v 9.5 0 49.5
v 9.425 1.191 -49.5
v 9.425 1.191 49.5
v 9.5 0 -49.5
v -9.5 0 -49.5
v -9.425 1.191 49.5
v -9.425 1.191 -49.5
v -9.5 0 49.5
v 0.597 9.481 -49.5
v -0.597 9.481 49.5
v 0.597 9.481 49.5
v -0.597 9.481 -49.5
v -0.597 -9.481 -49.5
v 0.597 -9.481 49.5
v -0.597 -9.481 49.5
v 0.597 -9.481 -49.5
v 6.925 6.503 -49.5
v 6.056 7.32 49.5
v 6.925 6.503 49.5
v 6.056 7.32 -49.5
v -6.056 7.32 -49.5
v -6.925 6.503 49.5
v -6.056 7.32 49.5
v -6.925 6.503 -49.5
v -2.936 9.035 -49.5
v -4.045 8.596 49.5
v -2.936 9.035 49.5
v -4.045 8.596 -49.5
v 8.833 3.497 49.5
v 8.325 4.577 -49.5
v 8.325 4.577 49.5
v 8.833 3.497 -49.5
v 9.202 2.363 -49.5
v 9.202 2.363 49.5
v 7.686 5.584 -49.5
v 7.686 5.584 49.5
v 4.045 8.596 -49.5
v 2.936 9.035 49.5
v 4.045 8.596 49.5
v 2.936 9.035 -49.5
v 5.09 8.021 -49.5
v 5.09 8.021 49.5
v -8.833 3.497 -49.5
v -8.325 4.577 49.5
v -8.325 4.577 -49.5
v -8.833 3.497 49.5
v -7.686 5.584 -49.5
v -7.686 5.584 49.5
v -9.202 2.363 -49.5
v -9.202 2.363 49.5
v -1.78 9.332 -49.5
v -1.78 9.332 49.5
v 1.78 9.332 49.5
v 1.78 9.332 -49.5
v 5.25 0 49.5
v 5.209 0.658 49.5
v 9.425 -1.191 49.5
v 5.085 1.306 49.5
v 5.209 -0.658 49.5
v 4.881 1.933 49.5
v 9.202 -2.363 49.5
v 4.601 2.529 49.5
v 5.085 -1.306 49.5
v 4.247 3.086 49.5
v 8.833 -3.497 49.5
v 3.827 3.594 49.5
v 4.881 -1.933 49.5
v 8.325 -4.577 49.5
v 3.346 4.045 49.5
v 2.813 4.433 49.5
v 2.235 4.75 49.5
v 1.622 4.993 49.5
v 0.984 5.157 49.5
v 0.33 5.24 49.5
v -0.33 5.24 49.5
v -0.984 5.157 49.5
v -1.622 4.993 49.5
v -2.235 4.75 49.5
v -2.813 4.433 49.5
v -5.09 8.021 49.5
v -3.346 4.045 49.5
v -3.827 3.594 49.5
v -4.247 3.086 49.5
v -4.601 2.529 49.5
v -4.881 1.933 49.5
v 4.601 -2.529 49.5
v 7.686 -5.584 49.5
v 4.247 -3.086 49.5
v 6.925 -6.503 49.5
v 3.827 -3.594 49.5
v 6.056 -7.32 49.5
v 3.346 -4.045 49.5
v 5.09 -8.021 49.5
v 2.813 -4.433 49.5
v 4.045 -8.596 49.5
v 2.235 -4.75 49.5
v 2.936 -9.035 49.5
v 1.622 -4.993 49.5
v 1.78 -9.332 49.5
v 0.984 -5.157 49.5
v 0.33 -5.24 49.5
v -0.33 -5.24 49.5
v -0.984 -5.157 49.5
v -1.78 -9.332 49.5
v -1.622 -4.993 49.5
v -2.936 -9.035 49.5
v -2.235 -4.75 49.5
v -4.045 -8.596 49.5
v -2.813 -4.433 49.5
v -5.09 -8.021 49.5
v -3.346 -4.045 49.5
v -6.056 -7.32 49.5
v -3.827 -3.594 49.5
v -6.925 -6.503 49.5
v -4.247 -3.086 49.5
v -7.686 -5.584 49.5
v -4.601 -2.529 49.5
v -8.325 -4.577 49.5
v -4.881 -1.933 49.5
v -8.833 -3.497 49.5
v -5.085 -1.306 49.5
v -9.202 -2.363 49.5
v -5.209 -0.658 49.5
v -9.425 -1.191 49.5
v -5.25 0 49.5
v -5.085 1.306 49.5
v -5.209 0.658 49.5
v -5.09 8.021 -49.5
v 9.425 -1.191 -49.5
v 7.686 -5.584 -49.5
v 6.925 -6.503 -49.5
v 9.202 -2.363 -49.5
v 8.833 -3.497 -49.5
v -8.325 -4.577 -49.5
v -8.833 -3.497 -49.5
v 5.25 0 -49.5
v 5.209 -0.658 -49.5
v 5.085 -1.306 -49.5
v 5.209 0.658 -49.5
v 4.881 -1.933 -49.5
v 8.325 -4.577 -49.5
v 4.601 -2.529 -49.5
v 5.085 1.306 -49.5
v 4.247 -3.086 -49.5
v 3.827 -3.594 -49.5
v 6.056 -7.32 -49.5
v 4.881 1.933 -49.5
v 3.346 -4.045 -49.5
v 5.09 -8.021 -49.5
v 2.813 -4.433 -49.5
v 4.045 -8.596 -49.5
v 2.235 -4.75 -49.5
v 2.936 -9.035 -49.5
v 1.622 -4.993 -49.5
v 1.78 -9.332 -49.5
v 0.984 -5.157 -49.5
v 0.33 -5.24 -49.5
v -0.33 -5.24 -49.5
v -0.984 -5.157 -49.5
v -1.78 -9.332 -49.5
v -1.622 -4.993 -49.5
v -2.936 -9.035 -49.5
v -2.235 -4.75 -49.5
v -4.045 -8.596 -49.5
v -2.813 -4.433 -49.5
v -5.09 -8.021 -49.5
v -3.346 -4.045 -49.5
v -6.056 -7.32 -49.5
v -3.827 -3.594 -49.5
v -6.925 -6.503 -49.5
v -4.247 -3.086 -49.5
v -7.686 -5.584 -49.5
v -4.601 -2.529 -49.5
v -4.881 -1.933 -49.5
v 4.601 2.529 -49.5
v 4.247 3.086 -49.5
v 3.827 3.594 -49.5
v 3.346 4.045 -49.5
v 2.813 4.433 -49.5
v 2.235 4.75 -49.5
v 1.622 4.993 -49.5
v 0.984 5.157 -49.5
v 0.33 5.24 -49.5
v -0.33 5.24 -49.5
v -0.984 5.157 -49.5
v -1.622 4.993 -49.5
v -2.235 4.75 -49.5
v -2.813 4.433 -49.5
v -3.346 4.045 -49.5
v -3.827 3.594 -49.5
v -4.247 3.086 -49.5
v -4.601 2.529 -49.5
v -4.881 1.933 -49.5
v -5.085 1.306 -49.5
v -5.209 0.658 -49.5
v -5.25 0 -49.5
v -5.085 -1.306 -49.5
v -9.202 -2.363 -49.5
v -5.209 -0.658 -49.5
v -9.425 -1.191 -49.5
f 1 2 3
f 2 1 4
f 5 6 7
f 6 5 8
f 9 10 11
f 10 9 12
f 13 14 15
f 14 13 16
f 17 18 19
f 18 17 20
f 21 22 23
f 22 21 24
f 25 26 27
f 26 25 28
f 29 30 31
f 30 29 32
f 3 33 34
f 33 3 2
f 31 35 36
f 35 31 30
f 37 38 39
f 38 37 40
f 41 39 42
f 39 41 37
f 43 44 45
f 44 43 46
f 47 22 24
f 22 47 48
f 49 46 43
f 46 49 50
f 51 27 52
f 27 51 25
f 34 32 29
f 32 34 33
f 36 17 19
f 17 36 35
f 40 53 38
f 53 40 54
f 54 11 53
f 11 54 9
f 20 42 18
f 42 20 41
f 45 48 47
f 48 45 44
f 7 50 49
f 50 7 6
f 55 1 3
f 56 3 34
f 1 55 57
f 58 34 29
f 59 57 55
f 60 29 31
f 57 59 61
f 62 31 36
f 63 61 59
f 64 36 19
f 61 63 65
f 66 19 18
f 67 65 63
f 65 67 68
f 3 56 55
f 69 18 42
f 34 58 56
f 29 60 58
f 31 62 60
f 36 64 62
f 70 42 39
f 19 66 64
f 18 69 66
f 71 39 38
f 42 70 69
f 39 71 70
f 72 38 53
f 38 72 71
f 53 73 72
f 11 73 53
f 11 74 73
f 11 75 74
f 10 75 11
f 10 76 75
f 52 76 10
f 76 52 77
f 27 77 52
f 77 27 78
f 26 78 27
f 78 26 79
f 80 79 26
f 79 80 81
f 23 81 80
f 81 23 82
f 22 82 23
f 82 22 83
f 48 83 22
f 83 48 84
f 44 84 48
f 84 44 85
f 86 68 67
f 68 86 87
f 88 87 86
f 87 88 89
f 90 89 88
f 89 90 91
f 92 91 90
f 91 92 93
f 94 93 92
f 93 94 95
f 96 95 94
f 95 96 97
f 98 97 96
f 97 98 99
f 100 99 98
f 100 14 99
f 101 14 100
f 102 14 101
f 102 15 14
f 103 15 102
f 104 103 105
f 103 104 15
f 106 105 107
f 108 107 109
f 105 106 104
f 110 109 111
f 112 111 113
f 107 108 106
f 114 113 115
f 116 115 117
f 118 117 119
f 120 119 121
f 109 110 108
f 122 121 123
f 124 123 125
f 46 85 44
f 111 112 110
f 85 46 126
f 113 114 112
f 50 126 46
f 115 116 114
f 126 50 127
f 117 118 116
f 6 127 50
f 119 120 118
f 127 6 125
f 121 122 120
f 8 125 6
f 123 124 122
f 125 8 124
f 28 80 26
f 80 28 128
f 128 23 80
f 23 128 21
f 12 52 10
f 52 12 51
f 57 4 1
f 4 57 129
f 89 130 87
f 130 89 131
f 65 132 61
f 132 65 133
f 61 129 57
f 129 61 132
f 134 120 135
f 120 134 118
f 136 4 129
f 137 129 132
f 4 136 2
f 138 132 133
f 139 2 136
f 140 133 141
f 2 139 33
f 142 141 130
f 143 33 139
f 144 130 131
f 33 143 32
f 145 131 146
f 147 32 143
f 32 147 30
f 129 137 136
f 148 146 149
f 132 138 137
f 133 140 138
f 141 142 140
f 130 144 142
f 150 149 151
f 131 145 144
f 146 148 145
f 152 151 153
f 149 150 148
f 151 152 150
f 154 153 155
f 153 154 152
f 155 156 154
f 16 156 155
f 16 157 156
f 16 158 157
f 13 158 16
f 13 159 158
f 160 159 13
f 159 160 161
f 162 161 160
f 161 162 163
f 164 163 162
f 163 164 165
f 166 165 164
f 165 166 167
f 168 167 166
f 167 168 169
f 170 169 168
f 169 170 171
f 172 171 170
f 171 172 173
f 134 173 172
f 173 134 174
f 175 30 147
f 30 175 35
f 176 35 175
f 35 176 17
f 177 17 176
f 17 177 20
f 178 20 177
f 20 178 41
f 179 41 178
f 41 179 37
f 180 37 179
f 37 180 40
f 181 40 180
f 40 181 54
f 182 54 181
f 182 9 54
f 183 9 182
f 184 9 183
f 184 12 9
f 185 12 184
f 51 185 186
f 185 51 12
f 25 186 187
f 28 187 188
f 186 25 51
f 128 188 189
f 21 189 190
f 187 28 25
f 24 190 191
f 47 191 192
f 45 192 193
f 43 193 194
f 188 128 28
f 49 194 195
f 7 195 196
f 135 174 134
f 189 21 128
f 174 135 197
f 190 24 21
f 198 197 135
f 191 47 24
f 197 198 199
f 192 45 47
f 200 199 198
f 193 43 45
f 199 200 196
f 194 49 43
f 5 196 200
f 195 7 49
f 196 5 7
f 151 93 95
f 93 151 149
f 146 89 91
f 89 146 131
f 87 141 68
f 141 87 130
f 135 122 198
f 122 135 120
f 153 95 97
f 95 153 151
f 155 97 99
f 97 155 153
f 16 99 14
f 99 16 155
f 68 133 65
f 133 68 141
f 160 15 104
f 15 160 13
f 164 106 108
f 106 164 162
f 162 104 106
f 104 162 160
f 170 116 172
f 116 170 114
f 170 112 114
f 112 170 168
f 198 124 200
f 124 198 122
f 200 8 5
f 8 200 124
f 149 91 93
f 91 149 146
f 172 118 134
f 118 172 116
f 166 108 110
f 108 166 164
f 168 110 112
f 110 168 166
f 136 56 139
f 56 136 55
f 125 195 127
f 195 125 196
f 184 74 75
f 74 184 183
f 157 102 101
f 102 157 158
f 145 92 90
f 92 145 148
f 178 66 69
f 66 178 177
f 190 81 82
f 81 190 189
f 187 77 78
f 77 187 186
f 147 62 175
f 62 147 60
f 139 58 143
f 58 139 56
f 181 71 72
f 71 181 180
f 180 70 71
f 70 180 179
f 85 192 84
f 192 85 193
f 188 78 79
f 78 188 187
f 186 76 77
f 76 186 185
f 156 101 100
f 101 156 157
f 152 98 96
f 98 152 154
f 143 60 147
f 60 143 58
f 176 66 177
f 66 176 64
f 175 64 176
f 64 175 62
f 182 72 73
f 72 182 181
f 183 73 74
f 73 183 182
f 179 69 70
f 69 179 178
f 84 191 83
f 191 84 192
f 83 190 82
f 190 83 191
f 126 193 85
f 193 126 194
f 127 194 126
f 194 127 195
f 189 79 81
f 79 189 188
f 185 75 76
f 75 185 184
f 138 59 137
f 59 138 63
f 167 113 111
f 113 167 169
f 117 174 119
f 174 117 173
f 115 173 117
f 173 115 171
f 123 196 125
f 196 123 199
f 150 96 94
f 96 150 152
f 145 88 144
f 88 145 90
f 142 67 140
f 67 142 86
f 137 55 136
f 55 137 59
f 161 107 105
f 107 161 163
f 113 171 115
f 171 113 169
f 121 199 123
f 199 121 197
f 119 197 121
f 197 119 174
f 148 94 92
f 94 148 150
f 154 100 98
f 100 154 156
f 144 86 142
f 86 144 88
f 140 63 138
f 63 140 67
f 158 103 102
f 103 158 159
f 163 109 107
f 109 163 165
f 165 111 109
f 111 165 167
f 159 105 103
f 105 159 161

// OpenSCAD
$fn = 50;


difference() {
	union() {
		translate(v = [0, 0, -49.5000000000]) {
			cylinder(h = 99, r = 9.5000000000);
		}
	}
	union() {
		translate(v = [0, 0, -100.0000000000]) {
			cylinder(h = 200, r = 5.2500000000);
		}
	}
}
